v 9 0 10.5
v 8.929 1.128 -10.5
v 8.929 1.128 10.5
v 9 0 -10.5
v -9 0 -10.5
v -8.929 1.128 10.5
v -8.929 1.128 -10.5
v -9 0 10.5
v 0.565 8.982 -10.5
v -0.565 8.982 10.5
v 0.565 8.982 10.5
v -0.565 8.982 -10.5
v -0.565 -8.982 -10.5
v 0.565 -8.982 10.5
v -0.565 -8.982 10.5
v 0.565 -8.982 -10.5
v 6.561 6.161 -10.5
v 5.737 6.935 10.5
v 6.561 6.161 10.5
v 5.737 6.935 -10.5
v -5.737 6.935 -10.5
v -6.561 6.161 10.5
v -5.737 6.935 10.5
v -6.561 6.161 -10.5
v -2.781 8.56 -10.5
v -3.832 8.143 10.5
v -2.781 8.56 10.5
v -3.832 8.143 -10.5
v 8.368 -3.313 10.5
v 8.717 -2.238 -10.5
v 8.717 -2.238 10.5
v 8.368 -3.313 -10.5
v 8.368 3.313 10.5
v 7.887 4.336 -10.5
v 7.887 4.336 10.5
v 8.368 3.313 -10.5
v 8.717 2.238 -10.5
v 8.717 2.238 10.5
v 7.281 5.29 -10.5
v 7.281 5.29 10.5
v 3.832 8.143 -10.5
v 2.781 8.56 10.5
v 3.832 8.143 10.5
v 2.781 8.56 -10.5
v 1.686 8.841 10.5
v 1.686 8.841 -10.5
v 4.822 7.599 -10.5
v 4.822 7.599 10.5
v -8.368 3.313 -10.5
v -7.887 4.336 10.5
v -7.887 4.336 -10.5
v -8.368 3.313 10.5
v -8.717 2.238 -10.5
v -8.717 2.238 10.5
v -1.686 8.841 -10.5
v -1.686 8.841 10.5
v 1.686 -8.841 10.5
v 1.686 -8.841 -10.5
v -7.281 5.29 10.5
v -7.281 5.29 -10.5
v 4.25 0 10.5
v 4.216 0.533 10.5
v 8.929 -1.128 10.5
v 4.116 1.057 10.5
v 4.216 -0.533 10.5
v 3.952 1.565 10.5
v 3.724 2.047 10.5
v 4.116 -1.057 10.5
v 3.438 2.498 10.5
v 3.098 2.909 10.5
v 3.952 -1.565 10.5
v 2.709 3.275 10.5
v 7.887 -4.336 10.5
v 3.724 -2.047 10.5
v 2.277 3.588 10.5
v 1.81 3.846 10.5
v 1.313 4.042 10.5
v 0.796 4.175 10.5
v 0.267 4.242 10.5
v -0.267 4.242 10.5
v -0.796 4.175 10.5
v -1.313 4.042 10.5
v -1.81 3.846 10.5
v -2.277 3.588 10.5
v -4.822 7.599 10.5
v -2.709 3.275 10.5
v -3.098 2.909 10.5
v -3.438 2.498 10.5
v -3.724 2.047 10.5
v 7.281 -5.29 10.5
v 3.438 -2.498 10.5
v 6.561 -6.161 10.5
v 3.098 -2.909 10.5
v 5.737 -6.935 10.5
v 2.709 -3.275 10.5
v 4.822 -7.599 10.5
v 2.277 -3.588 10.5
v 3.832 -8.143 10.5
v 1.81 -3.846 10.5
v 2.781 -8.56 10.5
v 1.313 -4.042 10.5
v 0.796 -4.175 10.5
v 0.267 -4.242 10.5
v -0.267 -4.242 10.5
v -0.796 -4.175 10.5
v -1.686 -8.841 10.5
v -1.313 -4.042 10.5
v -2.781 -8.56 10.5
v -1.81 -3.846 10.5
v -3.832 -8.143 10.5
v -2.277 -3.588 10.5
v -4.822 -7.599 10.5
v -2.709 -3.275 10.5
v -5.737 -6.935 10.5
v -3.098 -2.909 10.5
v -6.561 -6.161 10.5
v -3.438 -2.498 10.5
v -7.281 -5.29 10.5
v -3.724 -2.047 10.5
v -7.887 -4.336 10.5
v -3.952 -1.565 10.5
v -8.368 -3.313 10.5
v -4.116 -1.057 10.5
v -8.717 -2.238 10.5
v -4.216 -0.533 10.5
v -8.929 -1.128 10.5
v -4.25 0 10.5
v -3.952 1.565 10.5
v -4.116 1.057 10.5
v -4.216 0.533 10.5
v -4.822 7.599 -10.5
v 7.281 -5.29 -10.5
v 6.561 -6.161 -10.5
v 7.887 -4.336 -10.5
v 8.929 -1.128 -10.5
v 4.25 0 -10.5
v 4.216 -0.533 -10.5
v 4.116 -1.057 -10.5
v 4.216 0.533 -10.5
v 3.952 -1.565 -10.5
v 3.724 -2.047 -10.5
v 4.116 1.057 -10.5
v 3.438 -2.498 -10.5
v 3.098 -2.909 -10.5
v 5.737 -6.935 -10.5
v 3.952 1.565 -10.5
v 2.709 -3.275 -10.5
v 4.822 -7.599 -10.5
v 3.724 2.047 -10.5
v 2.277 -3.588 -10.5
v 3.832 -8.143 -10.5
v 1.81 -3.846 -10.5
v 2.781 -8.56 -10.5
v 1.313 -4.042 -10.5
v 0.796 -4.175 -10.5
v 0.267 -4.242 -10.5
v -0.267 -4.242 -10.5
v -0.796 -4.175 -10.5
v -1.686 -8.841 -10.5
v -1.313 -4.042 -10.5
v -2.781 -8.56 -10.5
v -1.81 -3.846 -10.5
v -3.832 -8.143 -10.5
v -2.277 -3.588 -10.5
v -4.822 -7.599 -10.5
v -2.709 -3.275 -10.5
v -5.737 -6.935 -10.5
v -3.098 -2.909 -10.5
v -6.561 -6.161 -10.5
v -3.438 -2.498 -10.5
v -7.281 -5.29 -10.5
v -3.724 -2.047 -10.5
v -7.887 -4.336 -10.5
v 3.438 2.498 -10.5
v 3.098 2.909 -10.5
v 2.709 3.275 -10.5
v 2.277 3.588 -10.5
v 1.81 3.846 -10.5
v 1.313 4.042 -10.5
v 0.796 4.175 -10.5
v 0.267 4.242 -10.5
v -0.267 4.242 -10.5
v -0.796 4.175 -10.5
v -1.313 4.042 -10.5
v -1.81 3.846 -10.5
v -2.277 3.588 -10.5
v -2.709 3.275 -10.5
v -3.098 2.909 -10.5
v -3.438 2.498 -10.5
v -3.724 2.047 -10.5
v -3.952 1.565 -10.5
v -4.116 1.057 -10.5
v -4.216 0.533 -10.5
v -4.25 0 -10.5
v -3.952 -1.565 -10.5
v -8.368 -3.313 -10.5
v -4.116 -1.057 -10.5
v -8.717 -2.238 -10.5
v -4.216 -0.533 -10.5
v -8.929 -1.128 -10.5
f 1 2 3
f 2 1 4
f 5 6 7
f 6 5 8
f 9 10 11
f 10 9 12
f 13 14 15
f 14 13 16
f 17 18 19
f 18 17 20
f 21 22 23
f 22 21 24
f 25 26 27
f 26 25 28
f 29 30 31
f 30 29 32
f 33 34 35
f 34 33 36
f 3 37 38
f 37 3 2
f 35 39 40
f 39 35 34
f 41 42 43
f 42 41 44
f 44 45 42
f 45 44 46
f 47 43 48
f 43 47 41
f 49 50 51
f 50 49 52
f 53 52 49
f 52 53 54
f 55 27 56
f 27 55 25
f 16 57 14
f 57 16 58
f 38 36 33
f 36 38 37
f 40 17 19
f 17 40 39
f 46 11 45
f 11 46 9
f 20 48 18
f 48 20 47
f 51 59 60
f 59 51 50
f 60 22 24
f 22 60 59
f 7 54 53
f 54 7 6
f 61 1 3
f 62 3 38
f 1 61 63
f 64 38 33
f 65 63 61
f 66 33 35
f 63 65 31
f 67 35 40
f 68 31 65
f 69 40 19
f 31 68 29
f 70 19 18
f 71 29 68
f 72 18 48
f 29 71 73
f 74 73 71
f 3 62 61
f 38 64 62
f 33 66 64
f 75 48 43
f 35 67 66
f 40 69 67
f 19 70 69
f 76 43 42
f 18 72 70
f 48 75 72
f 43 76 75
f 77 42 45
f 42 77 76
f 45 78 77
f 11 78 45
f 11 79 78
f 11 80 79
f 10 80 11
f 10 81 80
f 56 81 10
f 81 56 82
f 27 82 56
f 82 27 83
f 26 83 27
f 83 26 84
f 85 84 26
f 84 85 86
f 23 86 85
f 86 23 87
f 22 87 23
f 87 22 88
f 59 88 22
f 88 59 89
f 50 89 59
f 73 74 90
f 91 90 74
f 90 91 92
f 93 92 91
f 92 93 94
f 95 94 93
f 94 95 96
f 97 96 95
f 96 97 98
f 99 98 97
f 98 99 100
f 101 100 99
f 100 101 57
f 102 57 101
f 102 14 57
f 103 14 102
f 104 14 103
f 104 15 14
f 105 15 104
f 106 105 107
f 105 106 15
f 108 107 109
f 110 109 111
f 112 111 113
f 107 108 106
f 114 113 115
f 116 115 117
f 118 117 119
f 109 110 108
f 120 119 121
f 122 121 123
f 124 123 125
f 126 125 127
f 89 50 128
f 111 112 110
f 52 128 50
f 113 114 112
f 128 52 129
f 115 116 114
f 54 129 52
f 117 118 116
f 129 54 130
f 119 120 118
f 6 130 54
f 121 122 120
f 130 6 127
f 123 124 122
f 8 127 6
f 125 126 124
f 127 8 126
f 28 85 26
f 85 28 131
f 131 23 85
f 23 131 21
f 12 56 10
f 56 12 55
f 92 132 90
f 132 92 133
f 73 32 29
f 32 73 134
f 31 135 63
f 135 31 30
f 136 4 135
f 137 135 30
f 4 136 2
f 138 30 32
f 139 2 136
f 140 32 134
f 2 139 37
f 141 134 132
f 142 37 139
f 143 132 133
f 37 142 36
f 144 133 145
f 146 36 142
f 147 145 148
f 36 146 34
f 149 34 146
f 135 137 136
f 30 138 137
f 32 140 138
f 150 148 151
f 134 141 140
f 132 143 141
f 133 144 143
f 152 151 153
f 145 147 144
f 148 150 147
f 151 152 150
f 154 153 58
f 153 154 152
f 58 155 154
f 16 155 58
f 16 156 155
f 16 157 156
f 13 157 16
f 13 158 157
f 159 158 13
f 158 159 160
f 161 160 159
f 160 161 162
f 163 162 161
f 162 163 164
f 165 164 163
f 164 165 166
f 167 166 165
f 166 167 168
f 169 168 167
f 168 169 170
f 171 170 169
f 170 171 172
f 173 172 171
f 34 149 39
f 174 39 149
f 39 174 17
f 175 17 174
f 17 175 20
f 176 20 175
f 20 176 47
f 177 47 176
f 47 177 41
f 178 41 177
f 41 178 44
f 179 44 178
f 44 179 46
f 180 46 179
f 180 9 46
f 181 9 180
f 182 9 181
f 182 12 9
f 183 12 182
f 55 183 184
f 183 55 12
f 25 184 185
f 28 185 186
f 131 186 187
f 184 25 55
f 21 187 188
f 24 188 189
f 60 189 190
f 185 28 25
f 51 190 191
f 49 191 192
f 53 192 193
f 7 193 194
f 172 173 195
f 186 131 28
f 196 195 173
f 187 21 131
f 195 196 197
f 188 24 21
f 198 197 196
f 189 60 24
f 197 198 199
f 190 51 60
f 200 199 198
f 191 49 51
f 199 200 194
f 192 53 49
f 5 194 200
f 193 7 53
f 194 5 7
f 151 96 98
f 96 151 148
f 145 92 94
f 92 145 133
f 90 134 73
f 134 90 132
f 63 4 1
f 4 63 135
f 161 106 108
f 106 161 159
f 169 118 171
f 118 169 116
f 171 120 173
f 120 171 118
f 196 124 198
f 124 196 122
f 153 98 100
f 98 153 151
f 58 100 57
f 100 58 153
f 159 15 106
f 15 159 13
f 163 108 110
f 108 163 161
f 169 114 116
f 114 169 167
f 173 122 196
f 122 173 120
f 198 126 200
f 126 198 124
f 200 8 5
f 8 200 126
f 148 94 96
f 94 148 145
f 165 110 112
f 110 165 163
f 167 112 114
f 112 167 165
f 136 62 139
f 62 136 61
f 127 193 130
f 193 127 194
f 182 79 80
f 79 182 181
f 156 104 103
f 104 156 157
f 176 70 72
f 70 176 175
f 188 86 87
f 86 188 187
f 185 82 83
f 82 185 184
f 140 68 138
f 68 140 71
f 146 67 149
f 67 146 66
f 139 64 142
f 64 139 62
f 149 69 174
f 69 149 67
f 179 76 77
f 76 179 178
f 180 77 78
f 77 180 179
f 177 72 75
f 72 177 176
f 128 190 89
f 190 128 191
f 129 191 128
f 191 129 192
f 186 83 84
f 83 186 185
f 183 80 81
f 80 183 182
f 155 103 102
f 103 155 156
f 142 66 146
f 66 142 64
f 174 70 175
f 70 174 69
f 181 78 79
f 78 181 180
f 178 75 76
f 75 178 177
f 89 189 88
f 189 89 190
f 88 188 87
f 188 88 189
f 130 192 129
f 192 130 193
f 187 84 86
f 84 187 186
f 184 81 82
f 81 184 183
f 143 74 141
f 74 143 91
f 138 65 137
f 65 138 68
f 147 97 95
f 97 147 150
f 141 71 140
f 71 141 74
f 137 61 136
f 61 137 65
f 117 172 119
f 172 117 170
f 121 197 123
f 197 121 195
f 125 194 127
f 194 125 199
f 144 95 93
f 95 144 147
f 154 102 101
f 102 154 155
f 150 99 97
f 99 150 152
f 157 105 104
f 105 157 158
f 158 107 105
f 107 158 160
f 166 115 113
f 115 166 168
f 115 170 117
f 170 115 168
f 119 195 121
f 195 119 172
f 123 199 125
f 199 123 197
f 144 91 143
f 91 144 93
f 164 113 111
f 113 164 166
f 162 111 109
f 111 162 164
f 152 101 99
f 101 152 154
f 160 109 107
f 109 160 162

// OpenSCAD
$fn = 50;


difference() {
	union() {
		translate(v = [0, 0, -10.5000000000]) {
			cylinder(h = 21, r = 9.0000000000);
		}
	}
	union() {
		translate(v = [0, 0, -100.0000000000]) {
			cylinder(h = 200, r = 4.2500000000);
		}
	}
}
